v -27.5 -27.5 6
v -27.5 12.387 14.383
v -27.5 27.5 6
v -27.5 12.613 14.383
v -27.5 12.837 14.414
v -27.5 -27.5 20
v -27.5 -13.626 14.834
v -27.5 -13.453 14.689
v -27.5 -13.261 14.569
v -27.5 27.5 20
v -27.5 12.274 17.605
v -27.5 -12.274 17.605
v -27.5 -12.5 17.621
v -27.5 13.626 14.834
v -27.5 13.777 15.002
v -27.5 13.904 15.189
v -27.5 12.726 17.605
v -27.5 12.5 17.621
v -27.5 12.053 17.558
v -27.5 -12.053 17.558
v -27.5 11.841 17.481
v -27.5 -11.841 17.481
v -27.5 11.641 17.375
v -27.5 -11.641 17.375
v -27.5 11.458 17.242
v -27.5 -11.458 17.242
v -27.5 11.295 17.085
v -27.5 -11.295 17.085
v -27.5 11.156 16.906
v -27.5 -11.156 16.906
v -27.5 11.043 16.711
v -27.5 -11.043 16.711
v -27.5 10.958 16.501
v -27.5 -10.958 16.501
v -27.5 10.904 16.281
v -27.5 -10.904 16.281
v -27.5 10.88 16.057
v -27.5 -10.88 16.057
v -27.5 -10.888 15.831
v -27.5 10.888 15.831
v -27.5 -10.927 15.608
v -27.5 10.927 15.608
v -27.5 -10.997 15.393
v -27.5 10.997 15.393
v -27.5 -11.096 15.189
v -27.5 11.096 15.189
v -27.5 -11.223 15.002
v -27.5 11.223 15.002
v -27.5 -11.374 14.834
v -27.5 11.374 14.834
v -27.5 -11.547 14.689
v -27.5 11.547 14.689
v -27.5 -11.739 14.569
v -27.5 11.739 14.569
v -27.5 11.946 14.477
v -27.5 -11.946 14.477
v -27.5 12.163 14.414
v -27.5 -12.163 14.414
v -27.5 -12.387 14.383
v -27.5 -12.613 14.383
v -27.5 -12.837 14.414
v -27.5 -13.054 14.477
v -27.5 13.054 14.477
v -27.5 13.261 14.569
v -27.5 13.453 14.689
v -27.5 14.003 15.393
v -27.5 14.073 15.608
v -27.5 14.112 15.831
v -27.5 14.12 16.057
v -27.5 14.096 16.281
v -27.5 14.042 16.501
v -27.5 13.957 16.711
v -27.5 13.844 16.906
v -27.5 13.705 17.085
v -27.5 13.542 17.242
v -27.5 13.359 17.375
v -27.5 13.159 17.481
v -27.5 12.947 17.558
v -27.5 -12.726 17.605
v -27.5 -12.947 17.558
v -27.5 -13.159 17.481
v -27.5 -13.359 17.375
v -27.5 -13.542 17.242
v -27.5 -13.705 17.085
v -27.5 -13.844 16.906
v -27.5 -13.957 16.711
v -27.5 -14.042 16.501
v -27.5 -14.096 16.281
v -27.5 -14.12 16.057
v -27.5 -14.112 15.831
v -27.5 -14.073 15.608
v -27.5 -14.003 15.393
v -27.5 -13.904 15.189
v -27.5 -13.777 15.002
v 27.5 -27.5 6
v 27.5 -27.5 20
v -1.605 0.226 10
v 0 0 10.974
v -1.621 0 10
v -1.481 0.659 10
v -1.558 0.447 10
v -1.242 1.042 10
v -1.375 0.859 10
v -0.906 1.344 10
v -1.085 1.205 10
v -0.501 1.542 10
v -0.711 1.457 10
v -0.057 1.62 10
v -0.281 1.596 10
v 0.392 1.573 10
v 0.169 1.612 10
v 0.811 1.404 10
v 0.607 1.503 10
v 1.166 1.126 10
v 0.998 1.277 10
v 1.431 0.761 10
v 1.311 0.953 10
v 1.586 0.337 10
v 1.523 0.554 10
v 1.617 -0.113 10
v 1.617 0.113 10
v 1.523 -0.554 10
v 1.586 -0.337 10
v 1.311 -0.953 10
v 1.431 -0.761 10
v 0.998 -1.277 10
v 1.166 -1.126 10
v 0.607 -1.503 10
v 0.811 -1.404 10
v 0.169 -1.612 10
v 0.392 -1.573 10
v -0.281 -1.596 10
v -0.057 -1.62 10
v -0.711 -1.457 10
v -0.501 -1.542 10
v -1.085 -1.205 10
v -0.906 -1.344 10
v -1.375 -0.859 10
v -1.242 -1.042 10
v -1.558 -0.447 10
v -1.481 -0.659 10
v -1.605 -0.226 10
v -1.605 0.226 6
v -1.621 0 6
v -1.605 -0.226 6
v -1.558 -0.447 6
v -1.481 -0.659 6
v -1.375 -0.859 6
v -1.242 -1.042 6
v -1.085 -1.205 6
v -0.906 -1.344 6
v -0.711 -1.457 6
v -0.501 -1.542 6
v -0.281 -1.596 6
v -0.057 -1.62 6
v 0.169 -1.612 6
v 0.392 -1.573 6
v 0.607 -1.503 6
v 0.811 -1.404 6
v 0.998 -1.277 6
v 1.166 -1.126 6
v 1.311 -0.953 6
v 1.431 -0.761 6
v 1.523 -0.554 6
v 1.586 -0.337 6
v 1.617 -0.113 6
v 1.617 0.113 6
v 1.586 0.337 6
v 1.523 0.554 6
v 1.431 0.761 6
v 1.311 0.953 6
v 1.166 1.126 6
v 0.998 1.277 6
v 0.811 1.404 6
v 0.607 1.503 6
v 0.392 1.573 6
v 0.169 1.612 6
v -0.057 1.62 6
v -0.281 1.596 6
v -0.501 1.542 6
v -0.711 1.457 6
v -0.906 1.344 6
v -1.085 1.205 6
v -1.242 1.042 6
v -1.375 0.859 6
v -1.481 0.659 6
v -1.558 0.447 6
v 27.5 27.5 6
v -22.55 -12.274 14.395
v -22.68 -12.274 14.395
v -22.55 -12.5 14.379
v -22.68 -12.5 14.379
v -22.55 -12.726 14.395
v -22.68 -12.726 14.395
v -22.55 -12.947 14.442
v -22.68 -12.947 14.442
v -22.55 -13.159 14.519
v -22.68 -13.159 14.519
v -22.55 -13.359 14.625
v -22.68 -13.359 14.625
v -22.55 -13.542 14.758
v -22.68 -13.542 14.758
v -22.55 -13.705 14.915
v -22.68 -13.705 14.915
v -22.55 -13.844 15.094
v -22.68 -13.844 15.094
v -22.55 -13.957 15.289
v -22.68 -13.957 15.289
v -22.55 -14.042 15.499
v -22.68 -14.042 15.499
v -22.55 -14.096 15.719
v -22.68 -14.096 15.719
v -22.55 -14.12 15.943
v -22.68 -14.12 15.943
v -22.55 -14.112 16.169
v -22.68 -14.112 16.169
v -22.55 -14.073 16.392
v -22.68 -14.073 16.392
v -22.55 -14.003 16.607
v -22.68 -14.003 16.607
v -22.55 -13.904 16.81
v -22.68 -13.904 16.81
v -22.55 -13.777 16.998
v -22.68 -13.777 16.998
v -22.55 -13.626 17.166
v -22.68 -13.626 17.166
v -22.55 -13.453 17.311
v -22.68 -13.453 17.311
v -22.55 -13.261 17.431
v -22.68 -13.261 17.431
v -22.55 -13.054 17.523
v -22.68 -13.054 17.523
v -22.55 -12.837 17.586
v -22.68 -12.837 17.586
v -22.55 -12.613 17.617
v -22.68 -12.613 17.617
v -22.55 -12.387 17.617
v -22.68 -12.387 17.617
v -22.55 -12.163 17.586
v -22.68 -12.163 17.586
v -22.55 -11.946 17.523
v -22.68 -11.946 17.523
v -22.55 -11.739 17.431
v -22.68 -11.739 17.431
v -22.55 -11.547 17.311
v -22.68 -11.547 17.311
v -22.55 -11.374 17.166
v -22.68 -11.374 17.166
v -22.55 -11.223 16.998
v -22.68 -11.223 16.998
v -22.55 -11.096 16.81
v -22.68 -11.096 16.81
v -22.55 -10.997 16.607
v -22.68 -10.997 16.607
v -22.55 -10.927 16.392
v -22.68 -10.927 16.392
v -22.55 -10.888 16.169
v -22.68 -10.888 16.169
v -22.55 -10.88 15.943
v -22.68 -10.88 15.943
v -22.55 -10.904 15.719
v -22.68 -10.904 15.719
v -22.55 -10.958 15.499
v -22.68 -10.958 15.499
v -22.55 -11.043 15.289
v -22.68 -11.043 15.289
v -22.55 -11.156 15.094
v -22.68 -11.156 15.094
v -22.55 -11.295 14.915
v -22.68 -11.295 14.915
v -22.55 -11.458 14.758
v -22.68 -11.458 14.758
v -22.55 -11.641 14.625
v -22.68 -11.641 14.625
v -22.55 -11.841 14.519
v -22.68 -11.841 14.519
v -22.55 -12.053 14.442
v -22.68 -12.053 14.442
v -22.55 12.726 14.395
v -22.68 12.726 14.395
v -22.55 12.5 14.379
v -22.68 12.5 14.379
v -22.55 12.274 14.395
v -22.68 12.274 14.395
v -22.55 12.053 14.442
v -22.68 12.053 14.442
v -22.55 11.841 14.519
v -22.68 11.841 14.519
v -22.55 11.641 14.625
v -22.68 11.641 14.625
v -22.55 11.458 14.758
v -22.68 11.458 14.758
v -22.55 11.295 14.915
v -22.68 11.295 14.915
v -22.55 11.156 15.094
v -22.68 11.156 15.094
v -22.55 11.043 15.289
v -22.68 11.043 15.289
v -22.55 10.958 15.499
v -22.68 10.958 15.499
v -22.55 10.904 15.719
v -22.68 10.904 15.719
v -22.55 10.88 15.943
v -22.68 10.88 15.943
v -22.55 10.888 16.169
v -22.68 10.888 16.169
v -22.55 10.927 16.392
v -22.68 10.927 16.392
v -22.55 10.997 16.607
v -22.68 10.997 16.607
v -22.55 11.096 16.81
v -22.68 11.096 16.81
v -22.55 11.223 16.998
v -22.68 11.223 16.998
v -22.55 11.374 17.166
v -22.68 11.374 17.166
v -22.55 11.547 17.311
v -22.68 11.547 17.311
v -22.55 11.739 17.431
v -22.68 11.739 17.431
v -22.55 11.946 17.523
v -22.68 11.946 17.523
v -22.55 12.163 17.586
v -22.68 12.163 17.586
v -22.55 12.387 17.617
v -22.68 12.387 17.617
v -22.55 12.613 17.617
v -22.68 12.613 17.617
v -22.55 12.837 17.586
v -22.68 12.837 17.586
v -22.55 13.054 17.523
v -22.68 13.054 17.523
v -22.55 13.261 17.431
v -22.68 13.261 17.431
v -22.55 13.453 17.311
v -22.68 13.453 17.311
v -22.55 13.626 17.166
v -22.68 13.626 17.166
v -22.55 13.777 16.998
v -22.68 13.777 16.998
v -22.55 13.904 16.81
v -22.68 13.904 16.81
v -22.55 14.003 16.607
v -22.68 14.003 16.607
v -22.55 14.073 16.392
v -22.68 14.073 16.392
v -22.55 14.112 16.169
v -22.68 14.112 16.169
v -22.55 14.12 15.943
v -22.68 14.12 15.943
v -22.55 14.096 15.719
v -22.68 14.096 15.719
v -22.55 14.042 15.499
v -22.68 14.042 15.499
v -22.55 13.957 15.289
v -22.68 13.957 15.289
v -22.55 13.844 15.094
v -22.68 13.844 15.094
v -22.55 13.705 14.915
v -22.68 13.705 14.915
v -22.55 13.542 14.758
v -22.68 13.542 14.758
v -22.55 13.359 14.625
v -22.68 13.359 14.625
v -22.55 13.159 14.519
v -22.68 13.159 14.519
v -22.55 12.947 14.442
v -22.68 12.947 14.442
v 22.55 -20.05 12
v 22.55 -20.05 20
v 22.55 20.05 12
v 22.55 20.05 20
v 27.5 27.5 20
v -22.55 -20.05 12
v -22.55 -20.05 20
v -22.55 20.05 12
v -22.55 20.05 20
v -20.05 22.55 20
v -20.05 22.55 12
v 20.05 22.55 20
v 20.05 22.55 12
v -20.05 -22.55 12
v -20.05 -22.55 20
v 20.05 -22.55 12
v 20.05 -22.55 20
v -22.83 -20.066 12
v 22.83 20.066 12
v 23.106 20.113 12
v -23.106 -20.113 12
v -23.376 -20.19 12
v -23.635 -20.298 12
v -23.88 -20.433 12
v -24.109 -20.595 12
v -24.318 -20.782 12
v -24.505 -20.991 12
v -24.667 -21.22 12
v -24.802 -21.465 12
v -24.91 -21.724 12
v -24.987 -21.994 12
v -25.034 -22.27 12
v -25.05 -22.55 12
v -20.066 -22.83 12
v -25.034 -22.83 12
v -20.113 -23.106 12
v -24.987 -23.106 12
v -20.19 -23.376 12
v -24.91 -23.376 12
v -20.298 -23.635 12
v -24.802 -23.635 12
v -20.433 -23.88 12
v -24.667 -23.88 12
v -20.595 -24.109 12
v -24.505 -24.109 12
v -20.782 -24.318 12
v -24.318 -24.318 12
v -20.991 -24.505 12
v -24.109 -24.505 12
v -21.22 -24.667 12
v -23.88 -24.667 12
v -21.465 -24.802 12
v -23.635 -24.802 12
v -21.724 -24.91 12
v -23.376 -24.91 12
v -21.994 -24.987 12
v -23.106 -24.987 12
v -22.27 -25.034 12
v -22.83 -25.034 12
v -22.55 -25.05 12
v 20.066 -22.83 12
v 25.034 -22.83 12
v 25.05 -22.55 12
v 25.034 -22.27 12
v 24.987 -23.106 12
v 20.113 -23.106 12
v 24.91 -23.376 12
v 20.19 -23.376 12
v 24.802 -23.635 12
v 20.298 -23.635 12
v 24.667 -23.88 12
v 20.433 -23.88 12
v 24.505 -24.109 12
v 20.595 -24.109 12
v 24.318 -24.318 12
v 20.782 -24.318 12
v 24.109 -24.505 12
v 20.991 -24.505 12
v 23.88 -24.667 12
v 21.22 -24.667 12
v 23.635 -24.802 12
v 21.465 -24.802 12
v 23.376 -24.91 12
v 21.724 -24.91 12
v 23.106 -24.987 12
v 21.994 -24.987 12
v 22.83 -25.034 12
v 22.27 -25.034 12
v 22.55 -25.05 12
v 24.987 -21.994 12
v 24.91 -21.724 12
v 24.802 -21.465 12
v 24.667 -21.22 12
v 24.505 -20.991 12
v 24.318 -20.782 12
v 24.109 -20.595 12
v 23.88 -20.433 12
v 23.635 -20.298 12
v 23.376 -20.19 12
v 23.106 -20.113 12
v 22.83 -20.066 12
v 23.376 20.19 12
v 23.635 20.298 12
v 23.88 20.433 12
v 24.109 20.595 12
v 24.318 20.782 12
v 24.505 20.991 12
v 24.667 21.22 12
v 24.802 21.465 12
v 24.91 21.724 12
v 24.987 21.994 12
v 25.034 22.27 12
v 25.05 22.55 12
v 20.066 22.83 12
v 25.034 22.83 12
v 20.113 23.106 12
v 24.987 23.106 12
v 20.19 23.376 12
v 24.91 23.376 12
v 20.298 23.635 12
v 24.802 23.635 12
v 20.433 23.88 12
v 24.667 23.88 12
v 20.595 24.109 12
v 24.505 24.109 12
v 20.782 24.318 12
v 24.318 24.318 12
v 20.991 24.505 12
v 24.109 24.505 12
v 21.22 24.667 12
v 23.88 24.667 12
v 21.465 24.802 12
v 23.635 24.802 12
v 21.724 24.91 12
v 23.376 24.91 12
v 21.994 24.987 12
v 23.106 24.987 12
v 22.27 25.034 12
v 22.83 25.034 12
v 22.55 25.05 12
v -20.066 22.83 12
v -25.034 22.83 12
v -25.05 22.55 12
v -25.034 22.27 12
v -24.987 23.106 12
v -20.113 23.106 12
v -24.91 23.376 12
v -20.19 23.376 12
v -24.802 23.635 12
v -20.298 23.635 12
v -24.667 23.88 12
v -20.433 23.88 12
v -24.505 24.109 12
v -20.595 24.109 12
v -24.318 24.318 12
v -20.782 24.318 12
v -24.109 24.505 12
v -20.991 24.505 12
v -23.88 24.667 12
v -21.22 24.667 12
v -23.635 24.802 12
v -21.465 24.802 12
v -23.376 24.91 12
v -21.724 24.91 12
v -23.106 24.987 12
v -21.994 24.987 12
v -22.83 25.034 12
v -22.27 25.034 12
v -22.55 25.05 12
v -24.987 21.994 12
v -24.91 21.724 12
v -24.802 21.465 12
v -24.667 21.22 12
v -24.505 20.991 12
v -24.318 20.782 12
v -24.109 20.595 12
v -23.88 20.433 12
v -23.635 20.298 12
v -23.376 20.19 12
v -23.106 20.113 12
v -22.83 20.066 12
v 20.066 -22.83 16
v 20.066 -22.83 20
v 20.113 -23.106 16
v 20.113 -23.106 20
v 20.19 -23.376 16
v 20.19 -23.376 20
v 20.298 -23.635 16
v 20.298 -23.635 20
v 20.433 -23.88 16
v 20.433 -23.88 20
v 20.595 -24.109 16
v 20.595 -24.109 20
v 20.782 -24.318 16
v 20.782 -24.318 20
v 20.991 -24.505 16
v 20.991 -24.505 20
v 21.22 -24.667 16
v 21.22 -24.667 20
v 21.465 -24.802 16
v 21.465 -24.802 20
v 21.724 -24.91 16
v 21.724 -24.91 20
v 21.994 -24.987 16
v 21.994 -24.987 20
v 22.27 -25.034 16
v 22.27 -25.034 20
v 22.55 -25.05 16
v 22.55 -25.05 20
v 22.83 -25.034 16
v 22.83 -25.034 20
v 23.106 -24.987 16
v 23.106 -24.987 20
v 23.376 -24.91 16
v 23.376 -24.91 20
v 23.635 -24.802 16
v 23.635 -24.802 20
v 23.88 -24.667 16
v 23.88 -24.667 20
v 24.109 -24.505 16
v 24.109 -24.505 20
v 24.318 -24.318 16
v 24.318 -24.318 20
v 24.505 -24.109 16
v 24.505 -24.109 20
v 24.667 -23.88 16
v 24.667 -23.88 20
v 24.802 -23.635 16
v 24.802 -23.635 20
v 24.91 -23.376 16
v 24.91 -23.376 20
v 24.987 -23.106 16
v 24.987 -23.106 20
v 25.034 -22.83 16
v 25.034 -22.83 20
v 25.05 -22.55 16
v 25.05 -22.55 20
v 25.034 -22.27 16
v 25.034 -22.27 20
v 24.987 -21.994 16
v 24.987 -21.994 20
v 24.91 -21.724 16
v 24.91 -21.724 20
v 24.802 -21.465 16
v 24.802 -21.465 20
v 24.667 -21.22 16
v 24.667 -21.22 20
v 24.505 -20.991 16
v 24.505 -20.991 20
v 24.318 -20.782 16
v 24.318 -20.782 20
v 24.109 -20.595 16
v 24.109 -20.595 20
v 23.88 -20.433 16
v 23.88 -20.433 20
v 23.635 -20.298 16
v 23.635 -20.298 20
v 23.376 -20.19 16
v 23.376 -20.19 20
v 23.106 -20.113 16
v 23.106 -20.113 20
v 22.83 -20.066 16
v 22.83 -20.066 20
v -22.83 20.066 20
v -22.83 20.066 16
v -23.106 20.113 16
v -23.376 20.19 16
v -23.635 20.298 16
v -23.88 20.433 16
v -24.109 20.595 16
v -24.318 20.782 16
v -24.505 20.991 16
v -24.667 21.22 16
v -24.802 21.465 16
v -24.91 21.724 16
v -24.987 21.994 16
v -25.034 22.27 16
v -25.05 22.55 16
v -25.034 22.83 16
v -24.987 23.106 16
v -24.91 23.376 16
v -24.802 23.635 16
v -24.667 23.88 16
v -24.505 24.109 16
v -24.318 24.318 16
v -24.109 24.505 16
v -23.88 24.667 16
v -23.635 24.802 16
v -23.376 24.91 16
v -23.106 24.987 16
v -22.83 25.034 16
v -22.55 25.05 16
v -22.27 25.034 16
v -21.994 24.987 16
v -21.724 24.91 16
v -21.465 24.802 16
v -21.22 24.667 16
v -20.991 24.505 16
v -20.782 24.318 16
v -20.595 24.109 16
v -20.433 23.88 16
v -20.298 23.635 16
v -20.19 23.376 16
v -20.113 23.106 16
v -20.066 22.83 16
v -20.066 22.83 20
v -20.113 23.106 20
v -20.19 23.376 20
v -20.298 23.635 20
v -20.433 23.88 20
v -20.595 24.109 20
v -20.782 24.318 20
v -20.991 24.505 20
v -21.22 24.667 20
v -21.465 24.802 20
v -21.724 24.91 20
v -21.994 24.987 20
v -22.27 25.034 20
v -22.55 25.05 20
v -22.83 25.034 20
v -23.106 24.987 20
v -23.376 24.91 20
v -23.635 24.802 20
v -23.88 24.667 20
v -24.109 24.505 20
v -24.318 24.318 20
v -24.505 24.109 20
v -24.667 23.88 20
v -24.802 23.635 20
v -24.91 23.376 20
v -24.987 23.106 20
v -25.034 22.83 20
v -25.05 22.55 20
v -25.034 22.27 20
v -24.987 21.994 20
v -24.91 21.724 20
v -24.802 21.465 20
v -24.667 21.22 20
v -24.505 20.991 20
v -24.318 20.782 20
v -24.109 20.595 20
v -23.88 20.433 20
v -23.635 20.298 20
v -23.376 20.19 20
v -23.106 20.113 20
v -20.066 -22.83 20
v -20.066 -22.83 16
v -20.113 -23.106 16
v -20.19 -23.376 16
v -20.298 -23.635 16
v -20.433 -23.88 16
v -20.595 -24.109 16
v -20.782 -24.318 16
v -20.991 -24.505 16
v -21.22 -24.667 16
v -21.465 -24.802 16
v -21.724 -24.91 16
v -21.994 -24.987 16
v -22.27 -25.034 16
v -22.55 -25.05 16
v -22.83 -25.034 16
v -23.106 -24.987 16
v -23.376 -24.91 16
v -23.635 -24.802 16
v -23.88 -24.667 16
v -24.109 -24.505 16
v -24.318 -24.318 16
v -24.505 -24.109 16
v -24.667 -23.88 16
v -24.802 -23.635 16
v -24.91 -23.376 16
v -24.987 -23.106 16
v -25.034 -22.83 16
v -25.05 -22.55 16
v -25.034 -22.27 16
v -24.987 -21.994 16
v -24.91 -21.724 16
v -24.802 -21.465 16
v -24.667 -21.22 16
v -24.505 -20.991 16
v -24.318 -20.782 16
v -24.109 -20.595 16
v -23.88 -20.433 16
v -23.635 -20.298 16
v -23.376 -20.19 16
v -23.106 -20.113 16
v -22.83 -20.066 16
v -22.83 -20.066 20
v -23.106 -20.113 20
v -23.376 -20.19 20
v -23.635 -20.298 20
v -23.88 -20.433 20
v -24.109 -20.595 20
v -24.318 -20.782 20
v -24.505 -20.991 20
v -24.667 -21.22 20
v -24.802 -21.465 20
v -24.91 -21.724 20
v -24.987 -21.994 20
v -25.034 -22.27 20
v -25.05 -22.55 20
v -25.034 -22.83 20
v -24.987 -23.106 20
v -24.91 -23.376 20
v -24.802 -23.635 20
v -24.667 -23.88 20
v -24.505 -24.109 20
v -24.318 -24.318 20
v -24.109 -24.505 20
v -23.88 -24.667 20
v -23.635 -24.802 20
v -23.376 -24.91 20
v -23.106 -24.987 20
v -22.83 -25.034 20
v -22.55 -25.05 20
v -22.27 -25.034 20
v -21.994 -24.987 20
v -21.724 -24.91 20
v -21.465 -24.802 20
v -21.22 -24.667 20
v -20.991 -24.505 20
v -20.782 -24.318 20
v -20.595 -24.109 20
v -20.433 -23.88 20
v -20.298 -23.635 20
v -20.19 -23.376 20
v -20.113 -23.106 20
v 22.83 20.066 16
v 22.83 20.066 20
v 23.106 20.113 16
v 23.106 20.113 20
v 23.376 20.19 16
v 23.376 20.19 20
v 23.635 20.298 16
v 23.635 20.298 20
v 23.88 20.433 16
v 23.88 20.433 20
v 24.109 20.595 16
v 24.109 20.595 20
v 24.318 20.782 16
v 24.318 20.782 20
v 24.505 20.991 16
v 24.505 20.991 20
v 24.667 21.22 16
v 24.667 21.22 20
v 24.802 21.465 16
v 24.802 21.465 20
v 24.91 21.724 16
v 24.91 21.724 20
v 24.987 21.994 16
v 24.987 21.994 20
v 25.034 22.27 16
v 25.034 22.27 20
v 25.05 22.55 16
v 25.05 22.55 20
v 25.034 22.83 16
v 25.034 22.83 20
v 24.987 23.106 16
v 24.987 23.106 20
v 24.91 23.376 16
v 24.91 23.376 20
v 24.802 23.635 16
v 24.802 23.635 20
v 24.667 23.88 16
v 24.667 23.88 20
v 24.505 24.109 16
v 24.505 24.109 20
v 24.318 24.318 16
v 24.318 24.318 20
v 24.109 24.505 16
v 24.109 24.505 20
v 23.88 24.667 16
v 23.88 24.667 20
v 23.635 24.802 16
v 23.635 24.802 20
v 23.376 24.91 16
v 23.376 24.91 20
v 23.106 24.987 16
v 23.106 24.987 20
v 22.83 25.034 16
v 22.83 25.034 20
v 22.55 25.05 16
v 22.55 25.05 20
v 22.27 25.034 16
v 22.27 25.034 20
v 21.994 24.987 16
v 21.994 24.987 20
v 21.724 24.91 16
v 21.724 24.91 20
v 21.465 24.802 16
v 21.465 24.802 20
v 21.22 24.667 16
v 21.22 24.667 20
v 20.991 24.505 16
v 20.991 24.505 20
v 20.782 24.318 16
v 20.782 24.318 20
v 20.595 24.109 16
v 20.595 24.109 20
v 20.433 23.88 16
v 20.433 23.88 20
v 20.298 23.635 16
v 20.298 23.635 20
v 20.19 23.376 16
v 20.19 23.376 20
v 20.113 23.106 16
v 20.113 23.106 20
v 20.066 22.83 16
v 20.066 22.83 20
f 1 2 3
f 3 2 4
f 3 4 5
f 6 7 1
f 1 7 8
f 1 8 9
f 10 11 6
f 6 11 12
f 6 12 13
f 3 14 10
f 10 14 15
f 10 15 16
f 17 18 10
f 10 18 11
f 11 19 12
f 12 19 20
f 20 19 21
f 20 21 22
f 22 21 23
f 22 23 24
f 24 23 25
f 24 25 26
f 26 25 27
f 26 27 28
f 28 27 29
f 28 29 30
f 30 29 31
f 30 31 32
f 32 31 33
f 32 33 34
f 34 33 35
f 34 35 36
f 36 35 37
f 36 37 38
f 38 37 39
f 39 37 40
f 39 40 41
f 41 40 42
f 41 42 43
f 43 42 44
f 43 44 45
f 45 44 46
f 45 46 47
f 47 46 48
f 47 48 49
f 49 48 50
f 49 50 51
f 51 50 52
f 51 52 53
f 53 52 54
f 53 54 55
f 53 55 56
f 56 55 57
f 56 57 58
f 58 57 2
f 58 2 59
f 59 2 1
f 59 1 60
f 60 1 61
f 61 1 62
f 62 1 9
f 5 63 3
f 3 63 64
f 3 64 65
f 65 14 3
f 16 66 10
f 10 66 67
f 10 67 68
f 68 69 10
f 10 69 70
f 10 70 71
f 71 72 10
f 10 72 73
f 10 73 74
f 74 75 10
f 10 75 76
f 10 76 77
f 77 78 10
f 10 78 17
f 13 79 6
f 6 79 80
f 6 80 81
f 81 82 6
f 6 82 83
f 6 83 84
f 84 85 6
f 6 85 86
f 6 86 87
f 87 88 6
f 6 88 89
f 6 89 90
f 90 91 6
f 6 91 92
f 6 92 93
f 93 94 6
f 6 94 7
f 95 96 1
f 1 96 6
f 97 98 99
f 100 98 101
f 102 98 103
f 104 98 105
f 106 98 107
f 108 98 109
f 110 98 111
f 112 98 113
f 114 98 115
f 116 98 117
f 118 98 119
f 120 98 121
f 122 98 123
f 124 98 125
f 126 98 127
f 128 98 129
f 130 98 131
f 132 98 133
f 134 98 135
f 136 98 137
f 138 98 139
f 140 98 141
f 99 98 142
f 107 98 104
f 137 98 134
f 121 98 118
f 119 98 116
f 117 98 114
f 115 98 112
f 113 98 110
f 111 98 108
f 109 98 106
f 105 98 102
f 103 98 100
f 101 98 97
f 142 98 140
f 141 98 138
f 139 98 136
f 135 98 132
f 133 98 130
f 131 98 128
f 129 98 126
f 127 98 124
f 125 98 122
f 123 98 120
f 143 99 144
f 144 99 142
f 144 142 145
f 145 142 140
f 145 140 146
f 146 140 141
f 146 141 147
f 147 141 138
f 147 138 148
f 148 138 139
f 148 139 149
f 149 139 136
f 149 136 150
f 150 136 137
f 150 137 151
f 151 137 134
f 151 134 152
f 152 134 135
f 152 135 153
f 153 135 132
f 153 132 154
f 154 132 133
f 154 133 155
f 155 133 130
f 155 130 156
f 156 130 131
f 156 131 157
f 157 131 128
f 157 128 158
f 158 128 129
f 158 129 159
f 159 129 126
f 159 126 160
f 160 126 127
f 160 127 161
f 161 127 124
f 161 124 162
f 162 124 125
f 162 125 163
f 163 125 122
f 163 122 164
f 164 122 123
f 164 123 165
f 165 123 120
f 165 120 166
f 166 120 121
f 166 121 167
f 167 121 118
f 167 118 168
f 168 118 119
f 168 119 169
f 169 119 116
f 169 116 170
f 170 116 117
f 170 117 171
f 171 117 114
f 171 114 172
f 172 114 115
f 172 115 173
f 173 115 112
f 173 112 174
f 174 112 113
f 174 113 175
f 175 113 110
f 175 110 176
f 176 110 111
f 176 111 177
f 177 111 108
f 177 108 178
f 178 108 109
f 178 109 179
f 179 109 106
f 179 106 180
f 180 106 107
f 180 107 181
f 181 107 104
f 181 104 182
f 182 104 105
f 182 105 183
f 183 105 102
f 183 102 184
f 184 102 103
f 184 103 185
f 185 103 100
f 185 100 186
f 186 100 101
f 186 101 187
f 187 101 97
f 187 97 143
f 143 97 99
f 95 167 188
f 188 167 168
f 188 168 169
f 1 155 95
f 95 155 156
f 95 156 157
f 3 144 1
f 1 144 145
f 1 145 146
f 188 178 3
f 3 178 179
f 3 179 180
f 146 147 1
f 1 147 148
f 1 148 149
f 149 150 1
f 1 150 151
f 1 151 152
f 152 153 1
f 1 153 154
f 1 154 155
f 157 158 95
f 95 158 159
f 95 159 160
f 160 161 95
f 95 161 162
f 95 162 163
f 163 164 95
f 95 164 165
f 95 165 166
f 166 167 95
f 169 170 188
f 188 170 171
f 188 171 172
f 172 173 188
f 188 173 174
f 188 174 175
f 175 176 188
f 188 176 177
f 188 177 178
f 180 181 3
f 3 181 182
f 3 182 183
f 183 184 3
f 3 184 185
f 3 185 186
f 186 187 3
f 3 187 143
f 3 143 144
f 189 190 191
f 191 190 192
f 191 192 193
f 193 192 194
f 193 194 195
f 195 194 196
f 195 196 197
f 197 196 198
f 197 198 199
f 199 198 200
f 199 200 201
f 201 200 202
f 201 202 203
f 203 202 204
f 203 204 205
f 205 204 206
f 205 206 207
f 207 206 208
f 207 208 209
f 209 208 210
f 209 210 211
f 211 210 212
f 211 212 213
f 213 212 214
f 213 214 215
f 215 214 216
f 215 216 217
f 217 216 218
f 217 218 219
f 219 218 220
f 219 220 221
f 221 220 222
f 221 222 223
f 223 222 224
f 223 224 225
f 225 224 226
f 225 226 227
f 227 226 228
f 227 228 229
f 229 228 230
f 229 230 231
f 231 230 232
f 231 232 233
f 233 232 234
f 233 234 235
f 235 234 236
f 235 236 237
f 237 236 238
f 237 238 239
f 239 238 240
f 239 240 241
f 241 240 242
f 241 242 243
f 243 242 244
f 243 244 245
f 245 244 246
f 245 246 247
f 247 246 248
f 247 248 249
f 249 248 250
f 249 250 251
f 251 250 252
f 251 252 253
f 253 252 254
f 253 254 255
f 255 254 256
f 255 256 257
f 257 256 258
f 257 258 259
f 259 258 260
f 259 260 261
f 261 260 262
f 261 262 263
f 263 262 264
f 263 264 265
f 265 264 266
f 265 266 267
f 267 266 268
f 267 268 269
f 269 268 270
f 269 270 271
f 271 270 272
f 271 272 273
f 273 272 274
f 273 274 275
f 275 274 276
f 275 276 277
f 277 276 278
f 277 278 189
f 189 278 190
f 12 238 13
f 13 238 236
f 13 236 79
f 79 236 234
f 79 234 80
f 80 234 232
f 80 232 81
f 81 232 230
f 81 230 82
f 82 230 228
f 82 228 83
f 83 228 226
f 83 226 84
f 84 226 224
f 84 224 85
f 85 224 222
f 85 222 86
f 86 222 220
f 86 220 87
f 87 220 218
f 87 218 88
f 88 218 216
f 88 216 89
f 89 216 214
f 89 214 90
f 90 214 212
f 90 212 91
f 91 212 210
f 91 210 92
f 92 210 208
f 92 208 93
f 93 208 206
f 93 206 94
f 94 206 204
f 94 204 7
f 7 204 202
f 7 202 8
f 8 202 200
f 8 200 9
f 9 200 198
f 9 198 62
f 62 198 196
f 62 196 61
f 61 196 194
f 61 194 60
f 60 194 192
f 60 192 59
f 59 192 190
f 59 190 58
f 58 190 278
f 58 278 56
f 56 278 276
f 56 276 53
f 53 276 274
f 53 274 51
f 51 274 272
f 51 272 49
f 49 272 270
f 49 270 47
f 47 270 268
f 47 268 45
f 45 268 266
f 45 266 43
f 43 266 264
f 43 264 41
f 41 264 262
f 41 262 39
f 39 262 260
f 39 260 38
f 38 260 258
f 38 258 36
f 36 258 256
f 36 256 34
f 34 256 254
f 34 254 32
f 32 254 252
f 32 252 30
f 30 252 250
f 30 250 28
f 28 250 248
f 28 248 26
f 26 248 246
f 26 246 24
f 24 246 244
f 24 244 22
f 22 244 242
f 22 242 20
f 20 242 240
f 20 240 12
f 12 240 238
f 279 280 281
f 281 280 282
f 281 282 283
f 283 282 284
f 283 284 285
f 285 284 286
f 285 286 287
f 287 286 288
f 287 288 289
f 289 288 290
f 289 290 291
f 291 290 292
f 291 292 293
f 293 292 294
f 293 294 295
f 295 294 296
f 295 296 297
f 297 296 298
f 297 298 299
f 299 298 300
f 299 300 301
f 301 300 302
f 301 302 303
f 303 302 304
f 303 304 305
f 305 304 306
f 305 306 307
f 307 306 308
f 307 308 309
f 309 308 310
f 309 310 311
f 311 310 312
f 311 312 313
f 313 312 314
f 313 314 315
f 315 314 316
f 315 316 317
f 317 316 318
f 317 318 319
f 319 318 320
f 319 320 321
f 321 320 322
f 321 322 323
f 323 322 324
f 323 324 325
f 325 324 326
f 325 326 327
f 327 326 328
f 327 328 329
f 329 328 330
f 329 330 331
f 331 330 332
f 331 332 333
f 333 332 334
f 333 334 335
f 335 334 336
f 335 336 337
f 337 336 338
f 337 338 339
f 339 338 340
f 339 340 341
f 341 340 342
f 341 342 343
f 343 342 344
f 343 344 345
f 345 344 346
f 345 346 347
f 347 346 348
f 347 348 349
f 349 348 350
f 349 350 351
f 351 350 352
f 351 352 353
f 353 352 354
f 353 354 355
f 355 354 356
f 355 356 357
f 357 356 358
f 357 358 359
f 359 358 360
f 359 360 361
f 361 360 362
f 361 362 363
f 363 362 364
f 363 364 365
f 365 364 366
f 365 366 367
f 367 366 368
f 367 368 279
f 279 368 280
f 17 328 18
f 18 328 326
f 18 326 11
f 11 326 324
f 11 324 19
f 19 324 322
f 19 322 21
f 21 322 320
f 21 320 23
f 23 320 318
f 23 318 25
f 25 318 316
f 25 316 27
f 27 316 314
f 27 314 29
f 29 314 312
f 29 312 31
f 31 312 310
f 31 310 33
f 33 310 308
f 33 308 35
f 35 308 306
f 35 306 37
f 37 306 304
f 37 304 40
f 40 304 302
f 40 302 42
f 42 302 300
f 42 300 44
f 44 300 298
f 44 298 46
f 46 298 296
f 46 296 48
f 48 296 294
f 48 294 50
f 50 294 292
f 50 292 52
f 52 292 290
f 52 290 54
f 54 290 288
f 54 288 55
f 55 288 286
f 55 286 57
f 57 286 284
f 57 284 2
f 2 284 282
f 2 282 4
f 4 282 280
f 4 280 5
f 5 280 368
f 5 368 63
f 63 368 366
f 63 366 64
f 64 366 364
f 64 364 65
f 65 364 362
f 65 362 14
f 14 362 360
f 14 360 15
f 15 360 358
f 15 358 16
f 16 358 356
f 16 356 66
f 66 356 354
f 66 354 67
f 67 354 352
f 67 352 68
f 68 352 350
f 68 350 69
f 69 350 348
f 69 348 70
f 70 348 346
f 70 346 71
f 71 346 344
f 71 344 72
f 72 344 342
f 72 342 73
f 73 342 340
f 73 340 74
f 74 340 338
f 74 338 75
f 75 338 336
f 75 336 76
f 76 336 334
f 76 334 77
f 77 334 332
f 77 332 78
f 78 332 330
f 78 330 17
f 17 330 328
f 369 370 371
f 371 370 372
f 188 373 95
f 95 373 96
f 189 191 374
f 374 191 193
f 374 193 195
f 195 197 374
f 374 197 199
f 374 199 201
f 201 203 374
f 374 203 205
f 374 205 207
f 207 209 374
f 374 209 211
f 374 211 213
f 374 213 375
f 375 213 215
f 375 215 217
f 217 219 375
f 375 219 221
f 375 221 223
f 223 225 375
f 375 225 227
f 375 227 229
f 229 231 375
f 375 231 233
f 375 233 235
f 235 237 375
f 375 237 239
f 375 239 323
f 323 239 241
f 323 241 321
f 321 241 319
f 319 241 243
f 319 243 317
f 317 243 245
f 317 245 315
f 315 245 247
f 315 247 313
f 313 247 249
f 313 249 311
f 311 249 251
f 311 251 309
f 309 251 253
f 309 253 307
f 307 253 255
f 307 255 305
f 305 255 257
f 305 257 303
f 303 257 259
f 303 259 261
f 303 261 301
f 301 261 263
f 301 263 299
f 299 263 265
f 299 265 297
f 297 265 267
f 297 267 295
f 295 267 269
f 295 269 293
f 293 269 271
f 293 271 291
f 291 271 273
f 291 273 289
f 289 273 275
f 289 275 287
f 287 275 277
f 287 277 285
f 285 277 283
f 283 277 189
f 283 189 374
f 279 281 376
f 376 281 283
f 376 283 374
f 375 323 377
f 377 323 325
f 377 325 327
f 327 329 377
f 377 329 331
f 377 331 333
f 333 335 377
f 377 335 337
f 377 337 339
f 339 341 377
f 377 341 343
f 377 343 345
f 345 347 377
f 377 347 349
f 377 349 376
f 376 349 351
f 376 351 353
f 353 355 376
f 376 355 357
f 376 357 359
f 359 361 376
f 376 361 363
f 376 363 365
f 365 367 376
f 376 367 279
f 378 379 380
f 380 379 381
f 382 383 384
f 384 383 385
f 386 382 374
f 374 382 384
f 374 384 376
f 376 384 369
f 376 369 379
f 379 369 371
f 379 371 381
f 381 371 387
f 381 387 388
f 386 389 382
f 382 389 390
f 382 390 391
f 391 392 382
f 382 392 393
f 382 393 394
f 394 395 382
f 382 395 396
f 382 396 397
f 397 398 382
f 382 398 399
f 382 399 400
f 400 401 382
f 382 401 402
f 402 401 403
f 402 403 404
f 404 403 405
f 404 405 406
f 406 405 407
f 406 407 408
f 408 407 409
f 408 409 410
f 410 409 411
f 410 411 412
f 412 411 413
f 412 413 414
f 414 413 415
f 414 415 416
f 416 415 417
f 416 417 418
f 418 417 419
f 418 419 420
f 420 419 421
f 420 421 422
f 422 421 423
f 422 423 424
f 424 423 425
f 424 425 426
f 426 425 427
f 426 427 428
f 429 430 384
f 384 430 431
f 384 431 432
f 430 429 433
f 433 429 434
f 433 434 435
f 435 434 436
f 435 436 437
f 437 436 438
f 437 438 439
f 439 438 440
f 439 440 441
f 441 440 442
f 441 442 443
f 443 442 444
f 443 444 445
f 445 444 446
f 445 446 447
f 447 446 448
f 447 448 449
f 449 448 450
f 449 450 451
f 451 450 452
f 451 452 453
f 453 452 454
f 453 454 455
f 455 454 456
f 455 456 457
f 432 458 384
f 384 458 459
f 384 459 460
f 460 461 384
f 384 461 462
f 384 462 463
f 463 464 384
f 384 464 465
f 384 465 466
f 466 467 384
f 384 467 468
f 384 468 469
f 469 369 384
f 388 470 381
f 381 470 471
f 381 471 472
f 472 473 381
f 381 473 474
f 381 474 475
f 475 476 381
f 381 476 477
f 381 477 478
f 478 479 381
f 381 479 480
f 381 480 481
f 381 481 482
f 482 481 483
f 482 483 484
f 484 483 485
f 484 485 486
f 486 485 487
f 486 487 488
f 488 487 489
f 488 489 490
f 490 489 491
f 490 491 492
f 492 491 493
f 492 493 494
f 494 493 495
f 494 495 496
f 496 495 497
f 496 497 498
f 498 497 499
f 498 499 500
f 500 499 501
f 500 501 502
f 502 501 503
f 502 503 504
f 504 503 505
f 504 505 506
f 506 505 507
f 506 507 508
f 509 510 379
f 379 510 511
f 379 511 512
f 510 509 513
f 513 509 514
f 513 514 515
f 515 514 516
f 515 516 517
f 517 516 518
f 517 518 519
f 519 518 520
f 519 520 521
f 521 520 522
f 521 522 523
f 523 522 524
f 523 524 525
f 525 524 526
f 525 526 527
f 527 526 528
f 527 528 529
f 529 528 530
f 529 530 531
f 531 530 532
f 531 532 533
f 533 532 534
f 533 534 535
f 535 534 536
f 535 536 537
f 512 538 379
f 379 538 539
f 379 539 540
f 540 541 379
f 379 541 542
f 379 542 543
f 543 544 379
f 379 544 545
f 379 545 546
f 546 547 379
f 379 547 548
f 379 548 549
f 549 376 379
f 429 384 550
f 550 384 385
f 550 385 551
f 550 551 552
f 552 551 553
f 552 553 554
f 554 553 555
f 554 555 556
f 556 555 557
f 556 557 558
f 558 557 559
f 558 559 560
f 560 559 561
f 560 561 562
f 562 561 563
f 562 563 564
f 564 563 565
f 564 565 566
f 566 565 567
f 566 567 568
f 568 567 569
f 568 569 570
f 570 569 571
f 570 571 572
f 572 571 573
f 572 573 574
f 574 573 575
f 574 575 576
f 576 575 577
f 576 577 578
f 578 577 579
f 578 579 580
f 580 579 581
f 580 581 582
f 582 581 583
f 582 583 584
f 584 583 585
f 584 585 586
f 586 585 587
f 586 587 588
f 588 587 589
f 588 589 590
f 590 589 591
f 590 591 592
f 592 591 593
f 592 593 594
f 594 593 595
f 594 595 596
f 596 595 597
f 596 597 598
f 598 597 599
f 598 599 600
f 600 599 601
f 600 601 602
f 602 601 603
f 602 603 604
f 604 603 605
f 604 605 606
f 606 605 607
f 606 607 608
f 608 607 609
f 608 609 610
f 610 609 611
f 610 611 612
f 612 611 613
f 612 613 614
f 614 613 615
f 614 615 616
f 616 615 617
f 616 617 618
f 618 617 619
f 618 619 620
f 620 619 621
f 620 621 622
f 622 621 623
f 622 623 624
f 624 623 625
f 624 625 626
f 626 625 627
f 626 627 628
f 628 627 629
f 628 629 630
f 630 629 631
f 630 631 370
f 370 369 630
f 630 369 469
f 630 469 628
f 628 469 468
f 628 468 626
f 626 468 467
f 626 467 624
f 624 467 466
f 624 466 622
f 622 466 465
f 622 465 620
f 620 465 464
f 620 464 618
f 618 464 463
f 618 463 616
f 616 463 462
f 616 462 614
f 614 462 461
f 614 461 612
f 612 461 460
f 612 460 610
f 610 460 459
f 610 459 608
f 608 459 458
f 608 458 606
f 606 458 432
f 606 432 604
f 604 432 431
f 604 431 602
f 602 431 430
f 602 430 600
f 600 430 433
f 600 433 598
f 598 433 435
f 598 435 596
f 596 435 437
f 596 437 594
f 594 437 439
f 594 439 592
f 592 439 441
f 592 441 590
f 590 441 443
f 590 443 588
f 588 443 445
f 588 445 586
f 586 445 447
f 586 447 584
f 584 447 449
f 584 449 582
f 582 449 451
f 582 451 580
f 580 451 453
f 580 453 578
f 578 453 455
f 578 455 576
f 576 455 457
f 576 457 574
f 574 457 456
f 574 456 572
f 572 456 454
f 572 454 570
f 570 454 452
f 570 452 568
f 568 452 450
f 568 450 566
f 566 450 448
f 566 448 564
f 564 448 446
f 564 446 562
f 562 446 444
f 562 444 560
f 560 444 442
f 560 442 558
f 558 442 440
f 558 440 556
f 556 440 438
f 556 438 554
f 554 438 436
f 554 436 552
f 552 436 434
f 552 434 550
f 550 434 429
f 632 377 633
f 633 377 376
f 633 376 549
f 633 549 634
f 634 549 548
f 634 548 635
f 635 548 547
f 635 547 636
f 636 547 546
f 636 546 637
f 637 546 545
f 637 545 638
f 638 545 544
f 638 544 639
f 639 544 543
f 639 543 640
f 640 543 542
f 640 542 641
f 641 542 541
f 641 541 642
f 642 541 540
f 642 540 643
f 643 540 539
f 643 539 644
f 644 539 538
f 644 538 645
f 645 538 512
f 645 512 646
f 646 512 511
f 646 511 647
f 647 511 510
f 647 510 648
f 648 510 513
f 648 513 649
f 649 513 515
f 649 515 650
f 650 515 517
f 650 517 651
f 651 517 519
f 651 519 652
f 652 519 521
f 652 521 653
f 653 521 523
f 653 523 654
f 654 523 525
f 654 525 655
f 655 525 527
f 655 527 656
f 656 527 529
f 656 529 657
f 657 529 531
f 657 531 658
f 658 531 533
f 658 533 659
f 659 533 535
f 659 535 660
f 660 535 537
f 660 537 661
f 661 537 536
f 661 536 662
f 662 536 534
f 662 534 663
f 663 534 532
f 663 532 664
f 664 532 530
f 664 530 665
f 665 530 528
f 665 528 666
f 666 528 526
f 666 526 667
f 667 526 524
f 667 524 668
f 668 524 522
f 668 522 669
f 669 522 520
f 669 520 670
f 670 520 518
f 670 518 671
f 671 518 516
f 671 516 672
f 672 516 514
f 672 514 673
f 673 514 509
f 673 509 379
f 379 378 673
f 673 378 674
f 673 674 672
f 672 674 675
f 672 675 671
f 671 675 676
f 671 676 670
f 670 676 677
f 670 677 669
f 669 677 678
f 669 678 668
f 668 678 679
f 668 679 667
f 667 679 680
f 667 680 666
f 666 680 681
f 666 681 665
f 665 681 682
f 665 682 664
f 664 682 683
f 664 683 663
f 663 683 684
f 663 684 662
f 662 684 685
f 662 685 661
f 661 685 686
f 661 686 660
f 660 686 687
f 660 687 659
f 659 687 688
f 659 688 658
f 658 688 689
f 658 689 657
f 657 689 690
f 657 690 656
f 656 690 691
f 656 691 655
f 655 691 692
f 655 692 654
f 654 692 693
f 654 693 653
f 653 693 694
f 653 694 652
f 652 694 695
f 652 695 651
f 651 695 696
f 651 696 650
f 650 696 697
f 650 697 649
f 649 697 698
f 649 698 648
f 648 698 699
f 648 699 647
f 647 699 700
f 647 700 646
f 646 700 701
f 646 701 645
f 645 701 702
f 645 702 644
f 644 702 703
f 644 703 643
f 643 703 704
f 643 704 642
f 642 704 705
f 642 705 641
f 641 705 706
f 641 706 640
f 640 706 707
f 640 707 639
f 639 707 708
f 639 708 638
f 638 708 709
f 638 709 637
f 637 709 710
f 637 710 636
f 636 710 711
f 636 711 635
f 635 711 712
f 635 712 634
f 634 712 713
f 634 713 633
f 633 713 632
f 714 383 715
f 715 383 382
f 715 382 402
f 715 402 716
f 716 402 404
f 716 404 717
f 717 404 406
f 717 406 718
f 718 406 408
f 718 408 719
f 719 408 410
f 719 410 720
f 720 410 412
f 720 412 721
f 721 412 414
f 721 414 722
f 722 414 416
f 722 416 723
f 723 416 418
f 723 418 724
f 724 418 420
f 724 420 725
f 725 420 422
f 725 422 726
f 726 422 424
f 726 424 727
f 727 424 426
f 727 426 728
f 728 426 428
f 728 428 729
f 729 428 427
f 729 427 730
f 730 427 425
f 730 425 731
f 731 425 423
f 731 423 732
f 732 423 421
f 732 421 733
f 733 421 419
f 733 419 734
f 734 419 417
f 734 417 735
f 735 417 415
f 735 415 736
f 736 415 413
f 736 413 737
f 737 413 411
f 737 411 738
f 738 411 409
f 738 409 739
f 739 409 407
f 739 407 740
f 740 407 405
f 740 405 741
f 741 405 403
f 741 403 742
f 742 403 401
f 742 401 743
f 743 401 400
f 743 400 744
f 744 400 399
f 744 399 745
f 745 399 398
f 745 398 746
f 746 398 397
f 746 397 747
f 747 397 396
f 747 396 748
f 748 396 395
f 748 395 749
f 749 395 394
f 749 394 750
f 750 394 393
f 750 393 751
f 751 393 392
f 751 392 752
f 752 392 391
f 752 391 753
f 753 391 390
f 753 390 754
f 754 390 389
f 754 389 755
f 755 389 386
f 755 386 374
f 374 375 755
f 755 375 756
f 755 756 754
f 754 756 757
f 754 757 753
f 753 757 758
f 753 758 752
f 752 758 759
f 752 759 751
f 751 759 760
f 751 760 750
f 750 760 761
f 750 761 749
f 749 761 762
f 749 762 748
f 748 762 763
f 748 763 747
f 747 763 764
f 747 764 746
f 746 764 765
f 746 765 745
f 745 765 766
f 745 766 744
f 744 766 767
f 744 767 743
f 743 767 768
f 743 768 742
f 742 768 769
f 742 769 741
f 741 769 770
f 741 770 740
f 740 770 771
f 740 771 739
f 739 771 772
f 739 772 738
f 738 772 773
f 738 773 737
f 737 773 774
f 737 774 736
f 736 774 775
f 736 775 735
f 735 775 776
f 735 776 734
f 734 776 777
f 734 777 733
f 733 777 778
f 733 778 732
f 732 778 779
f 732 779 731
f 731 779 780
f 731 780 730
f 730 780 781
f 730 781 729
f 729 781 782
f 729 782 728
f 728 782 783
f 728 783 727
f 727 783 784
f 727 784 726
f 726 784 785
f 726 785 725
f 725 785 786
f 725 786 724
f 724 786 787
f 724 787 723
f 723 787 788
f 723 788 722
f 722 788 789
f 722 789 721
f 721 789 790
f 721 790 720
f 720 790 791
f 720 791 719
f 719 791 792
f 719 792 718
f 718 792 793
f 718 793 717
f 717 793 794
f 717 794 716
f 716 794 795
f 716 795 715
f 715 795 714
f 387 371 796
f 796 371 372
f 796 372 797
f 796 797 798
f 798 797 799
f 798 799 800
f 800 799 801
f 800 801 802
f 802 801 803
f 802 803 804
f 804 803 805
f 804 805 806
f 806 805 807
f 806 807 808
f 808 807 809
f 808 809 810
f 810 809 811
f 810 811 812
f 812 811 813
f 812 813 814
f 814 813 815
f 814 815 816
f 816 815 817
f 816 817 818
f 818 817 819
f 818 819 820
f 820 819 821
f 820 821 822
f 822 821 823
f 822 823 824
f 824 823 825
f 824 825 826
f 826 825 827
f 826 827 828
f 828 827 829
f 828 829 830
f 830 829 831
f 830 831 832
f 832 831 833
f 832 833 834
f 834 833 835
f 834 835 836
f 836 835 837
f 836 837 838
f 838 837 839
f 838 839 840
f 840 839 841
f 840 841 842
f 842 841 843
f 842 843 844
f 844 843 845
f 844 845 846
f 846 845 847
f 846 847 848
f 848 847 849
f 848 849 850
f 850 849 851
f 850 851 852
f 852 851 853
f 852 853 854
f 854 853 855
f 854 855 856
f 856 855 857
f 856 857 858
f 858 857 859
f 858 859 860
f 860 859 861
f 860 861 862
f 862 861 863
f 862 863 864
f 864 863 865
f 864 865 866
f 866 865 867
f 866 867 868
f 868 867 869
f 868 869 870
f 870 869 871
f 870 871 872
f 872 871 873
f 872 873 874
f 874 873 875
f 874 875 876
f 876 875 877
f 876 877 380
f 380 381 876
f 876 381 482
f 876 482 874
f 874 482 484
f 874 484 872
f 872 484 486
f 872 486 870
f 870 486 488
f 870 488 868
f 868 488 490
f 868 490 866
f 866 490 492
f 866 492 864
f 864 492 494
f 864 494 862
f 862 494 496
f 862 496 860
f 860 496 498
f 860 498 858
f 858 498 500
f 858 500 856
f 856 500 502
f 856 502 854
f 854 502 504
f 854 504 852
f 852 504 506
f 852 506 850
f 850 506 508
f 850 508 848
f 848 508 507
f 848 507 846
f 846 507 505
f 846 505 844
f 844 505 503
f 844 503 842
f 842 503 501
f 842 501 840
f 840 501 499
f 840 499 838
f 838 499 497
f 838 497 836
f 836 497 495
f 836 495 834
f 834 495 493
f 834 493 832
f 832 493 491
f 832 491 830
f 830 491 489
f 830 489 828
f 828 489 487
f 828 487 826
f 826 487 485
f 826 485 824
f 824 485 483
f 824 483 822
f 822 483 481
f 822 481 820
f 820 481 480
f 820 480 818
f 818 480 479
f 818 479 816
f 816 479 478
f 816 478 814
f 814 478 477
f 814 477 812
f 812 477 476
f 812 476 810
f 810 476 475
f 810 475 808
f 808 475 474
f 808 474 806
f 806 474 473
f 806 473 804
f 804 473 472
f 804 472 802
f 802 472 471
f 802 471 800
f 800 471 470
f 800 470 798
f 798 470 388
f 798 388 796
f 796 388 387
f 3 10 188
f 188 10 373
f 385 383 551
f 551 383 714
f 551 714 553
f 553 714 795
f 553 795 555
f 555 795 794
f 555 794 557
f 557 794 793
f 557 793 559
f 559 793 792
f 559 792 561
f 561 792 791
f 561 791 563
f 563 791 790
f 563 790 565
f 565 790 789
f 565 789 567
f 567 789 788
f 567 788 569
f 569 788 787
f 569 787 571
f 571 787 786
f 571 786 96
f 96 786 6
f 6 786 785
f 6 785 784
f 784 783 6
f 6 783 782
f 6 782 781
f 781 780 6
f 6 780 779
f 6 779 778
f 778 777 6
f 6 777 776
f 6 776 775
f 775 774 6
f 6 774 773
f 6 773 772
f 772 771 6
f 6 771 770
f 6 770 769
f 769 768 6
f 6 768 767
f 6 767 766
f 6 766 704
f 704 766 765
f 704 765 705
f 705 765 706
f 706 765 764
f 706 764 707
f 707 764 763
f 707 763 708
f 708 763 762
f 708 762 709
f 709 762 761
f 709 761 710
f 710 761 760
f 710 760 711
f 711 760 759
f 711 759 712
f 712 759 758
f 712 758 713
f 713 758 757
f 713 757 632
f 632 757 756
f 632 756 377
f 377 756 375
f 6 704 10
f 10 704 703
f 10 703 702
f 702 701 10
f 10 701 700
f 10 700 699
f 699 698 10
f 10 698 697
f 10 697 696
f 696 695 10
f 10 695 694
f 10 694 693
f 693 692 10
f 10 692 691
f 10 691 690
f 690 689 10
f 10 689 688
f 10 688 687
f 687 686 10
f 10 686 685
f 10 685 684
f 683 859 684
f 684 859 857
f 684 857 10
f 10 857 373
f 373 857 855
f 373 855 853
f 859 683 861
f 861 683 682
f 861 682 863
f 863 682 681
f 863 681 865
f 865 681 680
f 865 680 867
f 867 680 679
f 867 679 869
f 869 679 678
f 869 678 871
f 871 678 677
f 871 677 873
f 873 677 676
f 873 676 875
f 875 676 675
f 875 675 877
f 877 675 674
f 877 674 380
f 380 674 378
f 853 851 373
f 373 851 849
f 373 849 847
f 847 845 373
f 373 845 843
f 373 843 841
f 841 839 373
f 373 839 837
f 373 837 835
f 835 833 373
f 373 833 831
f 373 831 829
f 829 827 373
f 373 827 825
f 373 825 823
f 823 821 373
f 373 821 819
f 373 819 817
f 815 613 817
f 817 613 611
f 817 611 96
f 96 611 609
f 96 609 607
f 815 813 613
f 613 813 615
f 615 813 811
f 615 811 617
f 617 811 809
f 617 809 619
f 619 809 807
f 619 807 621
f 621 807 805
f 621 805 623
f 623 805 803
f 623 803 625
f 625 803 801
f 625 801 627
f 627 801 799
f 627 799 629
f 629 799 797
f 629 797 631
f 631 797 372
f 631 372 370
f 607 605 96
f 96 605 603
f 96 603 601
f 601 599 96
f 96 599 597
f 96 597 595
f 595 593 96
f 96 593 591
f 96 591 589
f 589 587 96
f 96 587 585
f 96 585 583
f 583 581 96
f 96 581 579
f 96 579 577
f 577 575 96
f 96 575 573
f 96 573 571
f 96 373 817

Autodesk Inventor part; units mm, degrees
ref_plane "YZ Plane" through (0, 0, 0) normal (1, 0, 0) x (0, 1, 0)
ref_plane "XZ Plane" through (0, 0, 0) normal (0, 1, 0) x (-1, 0, 0)
ref_plane "XY Plane" through (0, 0, 0) normal (0, 0, 1) x (1, 0, 0)
sketch "Sketch1" plane through (0, 0, 0) normal (0, 0, 1) x (1, 0, 0)
  line L0 (0, 38.5) -> (0, -38.5) construction
  line L1 (-38.5, 0) -> (38.5, 0) construction
  line L2 (-27.5, 27.5) -> (27.5, 27.5)
  line L3 (27.5, 27.5) -> (27.5, -27.5)
  line L4 (27.5, -27.5) -> (-27.5, -27.5)
  line L5 (-27.5, -27.5) -> (-27.5, 27.5)
  point P0 (0, 0)
  dimension "d0" = 55
  dimension "d1" = 55
extrude "Extrusion1" add sketch "Sketch1" along normal blind 20
sketch "Sketch4" plane through (0, 0, 20) normal (0, 0, 1) x (1, 0, 0)
  line L0 (-38.5, 0) -> (38.5, 0) construction
  line L1 (0, 38.5) -> (0, -38.5) construction
  line L2 (-22.55, 22.55) -> (22.55, 22.55) construction
  line L3 (22.55, 22.55) -> (22.55, -22.55) construction
  line L4 (22.55, -22.55) -> (-22.55, -22.55) construction
  line L5 (-22.55, -22.55) -> (-22.55, 22.55) construction
  point P0 (0, 0)
  dimension "d15" = 45.1
  dimension "d16" = 45.1
hole "Hole2" at (-22.55, 22.55, 20) at (22.55, 22.55, 20) at (22.55, -22.55, 20) at (-22.55, -22.55, 20) at (-22.55, 22.55, 20) at (22.55, 22.55, 20) direction (0, 0, -1) diameter 5 depth 8
sketch "Sketch5" plane through (0, 0, 20) normal (0, 0, 1) x (1, 0, 0)
  circle A0 centre (-22.55, 22.55) radius 2.5 projected
  circle A1 centre (22.55, -22.55) radius 2.5 projected
  line L0 (-22.55, 22.55) -> (22.55, 22.55)
  line L1 (22.55, 22.55) -> (22.55, -22.55)
  line L2 (22.55, -22.55) -> (-22.55, -22.55)
  line L3 (-22.55, -22.55) -> (-22.55, 22.55)
  point P0 (0, 0)
extrude "Extrusion3" cut sketch "Sketch5" against normal blind 8 contours L0 L1 A1 L2 L3 A0 | A0 L3 L0 | L1 L2 A1 picked at (-20.9042, 22.3646) picked at (22.003, -20.9868)
sketch "Sketch6" plane through (-27.5, -27.5, 0) normal (-1, 0, 0) x (0, 0, 1)
  line L0 (0, 55) -> (20, 55) projected
  line L1 (0, 0) -> (20, 0) projected
  line L2 (20, 7.45) -> (12, 7.45) construction
  line L3 (20, 47.55) -> (20, 7.45) construction
  line L4 (12, 47.55) -> (20, 47.55) construction
  line L5 (12, 7.45) -> (12, 47.55) construction
  line L6 (16, 47.55) -> (16, 7.45) construction
  point P0 (0, 27.5)
  point P1 (16, 40)
  point P2 (16, 15)
  dimension "d26" = 15
  dimension "d27" = 15
hole "Hole3" at (-27.5, 12.5, 16) at (-27.5, -12.5, 16) direction (1, 0, 0) diameter 3.242 end up to surface thread size "M4x0.7" class "6H" standard "ANSI Metric M Profile"
sketch "Sketch8" plane through (0, 0, 0) normal (0, 0, -1) x (-1, 0, 0)
  line L0 (27.5, 27.5) -> (-27.5, 27.5) construction
  line L1 (-27.5, 27.5) -> (-27.5, -27.5) construction
  line L2 (-27.5, -27.5) -> (27.5, -27.5) construction
  line L3 (27.5, -27.5) -> (27.5, 27.5) construction
  line L4 (0, -38.5) -> (0, 38.5) construction
  line L5 (-38.5, 0) -> (38.5, 0) construction
  line L6 (-12.5, -12.5) -> (12.5, -12.5)
  line L7 (12.5, -12.5) -> (12.5, 12.5)
  line L8 (12.5, 12.5) -> (-12.5, 12.5)
  line L9 (-12.5, 12.5) -> (-12.5, -12.5)
  point P0 (0, 0)
  dimension "d44" = 25
  dimension "d45" = 25
extrude "Extrusion4" cut sketch "Sketch8" against normal blind 6
sketch "Sketch9" plane through (0, 0, 0) normal (0, 0, -1) x (-1, 0, 0)
  line L0 (12.5, 12.5) -> (12.5, -12.5) construction
  line L1 (12.5, -12.5) -> (-12.5, -12.5) construction
  line L2 (-12.5, -12.5) -> (-12.5, 12.5) construction
  line L3 (-12.5, 12.5) -> (12.5, 12.5) construction
  line L4 (27.5, 27.5) -> (-27.5, 27.5) construction
  line L5 (-27.5, 27.5) -> (-27.5, -27.5) construction
  line L6 (-27.5, -27.5) -> (27.5, -27.5) construction
  line L7 (27.5, -27.5) -> (27.5, 27.5) construction
  line L8 (12.5, -12.5) -> (-12.5, -12.5) construction
  point P0 (0, 0)
hole "Hole5" at (-12.5, 12.5, 0) at (-12.5, -12.5, 0) at (12.5, -12.5, 0) at (12.5, 12.5, 0) direction (0, 0, 1) diameter 3 depth 6
sketch "Sketch10" plane through (0, 0, 6) normal (0, 0, -1) x (-1, 0, 0)
  point P0 (0, 0)
  point P1 (0, 0)
hole "Hole6" at (0, 0, 6) direction (0, 0, 1) diameter 3.242 depth 4 tip angle 118 thread size "M4x0.7" class "6H" standard "ANSI Metric M Profile"
ref_plane "SplitPLane" through (0, 0, 6) normal (0, 0, -1) x (-1, 0, 0)
split "Split2" plane through (0, 0, 6) removes the side toward (0, 0, -1)
properties part number "Large-cuvette-mount-40mm-V4" material "PC/ABS Plastic"
